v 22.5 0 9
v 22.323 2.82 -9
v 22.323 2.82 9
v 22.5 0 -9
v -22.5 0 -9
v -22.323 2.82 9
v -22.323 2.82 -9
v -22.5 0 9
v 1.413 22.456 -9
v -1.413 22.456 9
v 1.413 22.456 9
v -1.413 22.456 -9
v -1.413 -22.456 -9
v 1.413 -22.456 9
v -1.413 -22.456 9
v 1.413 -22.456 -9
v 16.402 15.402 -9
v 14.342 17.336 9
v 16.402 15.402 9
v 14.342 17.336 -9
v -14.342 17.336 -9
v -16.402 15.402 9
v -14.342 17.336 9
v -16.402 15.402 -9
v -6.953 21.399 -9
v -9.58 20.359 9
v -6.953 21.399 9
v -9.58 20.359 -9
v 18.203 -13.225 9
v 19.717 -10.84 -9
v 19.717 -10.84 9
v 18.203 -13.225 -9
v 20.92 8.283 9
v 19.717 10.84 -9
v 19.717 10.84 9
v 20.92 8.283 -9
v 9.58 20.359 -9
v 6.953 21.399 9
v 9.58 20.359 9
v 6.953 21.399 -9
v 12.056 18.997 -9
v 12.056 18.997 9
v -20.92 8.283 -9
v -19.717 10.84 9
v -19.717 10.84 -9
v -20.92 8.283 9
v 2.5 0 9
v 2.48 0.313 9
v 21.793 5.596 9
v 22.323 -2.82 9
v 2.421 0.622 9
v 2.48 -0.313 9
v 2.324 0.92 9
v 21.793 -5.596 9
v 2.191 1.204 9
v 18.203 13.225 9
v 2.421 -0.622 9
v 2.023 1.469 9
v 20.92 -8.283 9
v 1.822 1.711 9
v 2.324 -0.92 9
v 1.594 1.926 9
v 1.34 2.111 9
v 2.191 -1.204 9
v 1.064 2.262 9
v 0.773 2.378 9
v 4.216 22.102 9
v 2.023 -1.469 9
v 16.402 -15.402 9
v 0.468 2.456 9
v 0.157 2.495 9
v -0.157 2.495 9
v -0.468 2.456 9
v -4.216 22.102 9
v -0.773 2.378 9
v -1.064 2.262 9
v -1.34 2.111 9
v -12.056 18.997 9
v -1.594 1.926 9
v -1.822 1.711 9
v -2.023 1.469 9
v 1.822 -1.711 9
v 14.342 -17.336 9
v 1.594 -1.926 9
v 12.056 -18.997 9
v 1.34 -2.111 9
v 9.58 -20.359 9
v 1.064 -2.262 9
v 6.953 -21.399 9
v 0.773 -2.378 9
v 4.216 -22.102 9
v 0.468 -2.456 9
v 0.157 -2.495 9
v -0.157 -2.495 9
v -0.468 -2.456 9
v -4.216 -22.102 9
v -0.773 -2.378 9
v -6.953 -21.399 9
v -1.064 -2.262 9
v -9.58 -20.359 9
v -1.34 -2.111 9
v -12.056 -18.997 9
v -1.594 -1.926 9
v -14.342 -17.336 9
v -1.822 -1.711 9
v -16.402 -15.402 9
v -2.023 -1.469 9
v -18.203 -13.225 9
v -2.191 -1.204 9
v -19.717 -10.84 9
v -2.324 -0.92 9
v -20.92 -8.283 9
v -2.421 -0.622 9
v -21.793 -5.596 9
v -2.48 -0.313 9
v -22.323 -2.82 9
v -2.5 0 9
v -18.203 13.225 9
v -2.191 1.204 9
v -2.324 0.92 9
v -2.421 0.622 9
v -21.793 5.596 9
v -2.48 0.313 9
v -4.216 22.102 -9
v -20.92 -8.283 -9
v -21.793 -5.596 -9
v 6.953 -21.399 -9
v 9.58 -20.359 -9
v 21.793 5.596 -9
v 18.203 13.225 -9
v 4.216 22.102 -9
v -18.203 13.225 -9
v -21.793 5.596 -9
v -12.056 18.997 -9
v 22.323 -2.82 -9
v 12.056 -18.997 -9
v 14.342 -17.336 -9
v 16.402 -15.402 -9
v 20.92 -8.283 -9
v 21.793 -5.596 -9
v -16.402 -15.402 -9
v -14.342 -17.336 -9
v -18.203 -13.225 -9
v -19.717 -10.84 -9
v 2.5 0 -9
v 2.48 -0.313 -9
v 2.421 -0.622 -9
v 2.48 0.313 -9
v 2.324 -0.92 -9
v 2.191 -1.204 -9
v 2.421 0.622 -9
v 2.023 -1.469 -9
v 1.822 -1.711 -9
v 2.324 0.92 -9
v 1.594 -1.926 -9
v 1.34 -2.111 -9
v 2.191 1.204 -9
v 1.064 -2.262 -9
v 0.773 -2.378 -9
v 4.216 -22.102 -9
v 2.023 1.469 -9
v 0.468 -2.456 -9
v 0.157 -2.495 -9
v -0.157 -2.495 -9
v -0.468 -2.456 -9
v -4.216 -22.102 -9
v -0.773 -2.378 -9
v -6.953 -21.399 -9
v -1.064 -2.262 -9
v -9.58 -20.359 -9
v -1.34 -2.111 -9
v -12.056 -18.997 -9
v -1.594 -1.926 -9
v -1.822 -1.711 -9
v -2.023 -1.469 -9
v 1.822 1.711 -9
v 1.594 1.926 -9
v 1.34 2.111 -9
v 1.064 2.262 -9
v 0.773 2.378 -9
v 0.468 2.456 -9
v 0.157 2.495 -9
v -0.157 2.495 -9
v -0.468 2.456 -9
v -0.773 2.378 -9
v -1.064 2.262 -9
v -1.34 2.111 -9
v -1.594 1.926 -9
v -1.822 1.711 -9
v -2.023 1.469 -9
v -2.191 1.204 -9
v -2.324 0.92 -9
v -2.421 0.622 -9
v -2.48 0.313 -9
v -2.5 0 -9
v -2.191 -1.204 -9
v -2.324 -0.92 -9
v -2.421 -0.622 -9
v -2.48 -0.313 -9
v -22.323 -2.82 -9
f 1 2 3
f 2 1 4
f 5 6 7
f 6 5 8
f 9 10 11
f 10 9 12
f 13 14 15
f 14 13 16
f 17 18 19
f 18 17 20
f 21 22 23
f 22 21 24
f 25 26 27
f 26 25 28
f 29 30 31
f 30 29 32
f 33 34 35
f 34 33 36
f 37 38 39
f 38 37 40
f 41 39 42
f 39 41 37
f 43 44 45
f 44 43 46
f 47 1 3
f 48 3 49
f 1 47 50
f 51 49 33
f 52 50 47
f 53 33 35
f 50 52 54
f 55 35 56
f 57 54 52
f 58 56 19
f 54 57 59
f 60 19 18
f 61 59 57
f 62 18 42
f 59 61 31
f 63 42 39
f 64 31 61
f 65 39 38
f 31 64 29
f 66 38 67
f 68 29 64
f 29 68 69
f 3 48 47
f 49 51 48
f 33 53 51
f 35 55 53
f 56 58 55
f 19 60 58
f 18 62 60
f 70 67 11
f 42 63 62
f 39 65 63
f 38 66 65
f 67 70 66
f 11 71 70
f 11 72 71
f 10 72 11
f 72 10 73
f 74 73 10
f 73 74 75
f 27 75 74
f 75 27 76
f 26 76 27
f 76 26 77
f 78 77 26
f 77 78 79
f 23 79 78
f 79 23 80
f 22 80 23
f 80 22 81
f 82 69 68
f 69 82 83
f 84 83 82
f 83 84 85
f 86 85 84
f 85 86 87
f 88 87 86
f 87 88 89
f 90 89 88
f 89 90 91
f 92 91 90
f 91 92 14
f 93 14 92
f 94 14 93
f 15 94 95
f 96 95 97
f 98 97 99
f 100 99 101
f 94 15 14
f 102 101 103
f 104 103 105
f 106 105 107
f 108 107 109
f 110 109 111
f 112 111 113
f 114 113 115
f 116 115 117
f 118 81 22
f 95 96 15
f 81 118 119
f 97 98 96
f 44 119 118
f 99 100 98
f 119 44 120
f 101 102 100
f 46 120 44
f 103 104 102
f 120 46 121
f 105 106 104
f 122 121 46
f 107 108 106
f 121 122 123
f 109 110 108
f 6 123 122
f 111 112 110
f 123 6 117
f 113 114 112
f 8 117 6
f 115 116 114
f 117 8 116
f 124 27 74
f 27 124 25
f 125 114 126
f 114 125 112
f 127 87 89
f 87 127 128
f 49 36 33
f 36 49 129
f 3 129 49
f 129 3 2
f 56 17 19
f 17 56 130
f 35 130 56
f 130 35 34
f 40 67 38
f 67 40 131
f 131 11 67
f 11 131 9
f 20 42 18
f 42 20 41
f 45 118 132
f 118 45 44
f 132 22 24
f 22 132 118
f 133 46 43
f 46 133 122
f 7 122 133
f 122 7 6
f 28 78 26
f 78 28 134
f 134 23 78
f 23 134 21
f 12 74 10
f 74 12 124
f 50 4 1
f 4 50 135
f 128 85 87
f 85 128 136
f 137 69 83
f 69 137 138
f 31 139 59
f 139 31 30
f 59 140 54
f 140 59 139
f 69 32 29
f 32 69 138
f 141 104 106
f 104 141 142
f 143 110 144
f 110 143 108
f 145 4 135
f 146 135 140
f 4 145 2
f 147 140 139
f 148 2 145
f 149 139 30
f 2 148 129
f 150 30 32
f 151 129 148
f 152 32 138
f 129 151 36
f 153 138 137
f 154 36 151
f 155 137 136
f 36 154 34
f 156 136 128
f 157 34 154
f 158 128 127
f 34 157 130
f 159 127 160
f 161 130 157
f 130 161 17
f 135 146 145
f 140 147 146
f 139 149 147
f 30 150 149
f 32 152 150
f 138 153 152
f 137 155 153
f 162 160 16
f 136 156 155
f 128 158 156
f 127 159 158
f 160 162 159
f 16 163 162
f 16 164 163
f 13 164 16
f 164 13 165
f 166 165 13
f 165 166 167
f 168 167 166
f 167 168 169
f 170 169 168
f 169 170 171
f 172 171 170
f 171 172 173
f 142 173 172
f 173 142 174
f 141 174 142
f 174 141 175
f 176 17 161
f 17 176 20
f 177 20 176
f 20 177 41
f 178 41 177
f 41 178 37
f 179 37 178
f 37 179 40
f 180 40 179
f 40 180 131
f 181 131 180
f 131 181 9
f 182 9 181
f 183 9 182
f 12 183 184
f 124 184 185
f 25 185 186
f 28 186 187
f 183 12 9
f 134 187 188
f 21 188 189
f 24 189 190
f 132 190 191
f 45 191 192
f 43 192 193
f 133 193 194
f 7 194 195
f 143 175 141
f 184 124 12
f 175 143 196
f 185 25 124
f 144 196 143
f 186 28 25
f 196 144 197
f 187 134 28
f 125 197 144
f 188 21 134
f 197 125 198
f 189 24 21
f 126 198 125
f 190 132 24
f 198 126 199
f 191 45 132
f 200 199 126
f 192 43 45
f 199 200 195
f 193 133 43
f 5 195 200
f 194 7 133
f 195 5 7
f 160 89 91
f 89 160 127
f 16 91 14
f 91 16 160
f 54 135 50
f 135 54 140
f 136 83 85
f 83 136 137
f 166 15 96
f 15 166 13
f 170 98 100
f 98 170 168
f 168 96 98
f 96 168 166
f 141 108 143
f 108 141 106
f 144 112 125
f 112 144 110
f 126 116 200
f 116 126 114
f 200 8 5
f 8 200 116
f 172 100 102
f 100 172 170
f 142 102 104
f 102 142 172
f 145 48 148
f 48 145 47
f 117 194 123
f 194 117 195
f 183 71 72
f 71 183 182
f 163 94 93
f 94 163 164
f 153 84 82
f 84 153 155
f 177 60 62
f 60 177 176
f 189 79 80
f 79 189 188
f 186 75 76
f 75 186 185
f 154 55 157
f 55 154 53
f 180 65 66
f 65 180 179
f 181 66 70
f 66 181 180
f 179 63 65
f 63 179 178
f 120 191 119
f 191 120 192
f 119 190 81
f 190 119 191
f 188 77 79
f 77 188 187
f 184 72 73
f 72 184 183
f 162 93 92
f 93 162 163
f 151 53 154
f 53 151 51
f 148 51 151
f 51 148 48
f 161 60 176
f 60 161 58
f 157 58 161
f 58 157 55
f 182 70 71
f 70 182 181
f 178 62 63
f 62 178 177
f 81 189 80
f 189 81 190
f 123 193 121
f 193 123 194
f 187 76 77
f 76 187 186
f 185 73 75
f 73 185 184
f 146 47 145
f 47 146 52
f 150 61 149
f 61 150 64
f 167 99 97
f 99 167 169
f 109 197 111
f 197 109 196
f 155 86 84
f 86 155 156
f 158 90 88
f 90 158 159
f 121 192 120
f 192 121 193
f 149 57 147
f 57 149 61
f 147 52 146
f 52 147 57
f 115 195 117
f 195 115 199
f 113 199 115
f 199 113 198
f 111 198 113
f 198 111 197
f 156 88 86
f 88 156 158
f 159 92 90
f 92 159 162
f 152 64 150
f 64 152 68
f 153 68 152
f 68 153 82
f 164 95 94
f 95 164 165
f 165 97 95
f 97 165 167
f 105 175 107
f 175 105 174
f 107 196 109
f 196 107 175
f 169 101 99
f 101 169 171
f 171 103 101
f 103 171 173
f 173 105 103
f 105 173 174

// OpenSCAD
$fn = 50;


difference() {
	union() {
		translate(v = [0, 0, -9.0000000000]) {
			cylinder(h = 18, r = 22.5000000000);
		}
	}
	union() {
		translate(v = [0, 0, -100.0000000000]) {
			cylinder(h = 200, r = 2.5000000000);
		}
	}
}
